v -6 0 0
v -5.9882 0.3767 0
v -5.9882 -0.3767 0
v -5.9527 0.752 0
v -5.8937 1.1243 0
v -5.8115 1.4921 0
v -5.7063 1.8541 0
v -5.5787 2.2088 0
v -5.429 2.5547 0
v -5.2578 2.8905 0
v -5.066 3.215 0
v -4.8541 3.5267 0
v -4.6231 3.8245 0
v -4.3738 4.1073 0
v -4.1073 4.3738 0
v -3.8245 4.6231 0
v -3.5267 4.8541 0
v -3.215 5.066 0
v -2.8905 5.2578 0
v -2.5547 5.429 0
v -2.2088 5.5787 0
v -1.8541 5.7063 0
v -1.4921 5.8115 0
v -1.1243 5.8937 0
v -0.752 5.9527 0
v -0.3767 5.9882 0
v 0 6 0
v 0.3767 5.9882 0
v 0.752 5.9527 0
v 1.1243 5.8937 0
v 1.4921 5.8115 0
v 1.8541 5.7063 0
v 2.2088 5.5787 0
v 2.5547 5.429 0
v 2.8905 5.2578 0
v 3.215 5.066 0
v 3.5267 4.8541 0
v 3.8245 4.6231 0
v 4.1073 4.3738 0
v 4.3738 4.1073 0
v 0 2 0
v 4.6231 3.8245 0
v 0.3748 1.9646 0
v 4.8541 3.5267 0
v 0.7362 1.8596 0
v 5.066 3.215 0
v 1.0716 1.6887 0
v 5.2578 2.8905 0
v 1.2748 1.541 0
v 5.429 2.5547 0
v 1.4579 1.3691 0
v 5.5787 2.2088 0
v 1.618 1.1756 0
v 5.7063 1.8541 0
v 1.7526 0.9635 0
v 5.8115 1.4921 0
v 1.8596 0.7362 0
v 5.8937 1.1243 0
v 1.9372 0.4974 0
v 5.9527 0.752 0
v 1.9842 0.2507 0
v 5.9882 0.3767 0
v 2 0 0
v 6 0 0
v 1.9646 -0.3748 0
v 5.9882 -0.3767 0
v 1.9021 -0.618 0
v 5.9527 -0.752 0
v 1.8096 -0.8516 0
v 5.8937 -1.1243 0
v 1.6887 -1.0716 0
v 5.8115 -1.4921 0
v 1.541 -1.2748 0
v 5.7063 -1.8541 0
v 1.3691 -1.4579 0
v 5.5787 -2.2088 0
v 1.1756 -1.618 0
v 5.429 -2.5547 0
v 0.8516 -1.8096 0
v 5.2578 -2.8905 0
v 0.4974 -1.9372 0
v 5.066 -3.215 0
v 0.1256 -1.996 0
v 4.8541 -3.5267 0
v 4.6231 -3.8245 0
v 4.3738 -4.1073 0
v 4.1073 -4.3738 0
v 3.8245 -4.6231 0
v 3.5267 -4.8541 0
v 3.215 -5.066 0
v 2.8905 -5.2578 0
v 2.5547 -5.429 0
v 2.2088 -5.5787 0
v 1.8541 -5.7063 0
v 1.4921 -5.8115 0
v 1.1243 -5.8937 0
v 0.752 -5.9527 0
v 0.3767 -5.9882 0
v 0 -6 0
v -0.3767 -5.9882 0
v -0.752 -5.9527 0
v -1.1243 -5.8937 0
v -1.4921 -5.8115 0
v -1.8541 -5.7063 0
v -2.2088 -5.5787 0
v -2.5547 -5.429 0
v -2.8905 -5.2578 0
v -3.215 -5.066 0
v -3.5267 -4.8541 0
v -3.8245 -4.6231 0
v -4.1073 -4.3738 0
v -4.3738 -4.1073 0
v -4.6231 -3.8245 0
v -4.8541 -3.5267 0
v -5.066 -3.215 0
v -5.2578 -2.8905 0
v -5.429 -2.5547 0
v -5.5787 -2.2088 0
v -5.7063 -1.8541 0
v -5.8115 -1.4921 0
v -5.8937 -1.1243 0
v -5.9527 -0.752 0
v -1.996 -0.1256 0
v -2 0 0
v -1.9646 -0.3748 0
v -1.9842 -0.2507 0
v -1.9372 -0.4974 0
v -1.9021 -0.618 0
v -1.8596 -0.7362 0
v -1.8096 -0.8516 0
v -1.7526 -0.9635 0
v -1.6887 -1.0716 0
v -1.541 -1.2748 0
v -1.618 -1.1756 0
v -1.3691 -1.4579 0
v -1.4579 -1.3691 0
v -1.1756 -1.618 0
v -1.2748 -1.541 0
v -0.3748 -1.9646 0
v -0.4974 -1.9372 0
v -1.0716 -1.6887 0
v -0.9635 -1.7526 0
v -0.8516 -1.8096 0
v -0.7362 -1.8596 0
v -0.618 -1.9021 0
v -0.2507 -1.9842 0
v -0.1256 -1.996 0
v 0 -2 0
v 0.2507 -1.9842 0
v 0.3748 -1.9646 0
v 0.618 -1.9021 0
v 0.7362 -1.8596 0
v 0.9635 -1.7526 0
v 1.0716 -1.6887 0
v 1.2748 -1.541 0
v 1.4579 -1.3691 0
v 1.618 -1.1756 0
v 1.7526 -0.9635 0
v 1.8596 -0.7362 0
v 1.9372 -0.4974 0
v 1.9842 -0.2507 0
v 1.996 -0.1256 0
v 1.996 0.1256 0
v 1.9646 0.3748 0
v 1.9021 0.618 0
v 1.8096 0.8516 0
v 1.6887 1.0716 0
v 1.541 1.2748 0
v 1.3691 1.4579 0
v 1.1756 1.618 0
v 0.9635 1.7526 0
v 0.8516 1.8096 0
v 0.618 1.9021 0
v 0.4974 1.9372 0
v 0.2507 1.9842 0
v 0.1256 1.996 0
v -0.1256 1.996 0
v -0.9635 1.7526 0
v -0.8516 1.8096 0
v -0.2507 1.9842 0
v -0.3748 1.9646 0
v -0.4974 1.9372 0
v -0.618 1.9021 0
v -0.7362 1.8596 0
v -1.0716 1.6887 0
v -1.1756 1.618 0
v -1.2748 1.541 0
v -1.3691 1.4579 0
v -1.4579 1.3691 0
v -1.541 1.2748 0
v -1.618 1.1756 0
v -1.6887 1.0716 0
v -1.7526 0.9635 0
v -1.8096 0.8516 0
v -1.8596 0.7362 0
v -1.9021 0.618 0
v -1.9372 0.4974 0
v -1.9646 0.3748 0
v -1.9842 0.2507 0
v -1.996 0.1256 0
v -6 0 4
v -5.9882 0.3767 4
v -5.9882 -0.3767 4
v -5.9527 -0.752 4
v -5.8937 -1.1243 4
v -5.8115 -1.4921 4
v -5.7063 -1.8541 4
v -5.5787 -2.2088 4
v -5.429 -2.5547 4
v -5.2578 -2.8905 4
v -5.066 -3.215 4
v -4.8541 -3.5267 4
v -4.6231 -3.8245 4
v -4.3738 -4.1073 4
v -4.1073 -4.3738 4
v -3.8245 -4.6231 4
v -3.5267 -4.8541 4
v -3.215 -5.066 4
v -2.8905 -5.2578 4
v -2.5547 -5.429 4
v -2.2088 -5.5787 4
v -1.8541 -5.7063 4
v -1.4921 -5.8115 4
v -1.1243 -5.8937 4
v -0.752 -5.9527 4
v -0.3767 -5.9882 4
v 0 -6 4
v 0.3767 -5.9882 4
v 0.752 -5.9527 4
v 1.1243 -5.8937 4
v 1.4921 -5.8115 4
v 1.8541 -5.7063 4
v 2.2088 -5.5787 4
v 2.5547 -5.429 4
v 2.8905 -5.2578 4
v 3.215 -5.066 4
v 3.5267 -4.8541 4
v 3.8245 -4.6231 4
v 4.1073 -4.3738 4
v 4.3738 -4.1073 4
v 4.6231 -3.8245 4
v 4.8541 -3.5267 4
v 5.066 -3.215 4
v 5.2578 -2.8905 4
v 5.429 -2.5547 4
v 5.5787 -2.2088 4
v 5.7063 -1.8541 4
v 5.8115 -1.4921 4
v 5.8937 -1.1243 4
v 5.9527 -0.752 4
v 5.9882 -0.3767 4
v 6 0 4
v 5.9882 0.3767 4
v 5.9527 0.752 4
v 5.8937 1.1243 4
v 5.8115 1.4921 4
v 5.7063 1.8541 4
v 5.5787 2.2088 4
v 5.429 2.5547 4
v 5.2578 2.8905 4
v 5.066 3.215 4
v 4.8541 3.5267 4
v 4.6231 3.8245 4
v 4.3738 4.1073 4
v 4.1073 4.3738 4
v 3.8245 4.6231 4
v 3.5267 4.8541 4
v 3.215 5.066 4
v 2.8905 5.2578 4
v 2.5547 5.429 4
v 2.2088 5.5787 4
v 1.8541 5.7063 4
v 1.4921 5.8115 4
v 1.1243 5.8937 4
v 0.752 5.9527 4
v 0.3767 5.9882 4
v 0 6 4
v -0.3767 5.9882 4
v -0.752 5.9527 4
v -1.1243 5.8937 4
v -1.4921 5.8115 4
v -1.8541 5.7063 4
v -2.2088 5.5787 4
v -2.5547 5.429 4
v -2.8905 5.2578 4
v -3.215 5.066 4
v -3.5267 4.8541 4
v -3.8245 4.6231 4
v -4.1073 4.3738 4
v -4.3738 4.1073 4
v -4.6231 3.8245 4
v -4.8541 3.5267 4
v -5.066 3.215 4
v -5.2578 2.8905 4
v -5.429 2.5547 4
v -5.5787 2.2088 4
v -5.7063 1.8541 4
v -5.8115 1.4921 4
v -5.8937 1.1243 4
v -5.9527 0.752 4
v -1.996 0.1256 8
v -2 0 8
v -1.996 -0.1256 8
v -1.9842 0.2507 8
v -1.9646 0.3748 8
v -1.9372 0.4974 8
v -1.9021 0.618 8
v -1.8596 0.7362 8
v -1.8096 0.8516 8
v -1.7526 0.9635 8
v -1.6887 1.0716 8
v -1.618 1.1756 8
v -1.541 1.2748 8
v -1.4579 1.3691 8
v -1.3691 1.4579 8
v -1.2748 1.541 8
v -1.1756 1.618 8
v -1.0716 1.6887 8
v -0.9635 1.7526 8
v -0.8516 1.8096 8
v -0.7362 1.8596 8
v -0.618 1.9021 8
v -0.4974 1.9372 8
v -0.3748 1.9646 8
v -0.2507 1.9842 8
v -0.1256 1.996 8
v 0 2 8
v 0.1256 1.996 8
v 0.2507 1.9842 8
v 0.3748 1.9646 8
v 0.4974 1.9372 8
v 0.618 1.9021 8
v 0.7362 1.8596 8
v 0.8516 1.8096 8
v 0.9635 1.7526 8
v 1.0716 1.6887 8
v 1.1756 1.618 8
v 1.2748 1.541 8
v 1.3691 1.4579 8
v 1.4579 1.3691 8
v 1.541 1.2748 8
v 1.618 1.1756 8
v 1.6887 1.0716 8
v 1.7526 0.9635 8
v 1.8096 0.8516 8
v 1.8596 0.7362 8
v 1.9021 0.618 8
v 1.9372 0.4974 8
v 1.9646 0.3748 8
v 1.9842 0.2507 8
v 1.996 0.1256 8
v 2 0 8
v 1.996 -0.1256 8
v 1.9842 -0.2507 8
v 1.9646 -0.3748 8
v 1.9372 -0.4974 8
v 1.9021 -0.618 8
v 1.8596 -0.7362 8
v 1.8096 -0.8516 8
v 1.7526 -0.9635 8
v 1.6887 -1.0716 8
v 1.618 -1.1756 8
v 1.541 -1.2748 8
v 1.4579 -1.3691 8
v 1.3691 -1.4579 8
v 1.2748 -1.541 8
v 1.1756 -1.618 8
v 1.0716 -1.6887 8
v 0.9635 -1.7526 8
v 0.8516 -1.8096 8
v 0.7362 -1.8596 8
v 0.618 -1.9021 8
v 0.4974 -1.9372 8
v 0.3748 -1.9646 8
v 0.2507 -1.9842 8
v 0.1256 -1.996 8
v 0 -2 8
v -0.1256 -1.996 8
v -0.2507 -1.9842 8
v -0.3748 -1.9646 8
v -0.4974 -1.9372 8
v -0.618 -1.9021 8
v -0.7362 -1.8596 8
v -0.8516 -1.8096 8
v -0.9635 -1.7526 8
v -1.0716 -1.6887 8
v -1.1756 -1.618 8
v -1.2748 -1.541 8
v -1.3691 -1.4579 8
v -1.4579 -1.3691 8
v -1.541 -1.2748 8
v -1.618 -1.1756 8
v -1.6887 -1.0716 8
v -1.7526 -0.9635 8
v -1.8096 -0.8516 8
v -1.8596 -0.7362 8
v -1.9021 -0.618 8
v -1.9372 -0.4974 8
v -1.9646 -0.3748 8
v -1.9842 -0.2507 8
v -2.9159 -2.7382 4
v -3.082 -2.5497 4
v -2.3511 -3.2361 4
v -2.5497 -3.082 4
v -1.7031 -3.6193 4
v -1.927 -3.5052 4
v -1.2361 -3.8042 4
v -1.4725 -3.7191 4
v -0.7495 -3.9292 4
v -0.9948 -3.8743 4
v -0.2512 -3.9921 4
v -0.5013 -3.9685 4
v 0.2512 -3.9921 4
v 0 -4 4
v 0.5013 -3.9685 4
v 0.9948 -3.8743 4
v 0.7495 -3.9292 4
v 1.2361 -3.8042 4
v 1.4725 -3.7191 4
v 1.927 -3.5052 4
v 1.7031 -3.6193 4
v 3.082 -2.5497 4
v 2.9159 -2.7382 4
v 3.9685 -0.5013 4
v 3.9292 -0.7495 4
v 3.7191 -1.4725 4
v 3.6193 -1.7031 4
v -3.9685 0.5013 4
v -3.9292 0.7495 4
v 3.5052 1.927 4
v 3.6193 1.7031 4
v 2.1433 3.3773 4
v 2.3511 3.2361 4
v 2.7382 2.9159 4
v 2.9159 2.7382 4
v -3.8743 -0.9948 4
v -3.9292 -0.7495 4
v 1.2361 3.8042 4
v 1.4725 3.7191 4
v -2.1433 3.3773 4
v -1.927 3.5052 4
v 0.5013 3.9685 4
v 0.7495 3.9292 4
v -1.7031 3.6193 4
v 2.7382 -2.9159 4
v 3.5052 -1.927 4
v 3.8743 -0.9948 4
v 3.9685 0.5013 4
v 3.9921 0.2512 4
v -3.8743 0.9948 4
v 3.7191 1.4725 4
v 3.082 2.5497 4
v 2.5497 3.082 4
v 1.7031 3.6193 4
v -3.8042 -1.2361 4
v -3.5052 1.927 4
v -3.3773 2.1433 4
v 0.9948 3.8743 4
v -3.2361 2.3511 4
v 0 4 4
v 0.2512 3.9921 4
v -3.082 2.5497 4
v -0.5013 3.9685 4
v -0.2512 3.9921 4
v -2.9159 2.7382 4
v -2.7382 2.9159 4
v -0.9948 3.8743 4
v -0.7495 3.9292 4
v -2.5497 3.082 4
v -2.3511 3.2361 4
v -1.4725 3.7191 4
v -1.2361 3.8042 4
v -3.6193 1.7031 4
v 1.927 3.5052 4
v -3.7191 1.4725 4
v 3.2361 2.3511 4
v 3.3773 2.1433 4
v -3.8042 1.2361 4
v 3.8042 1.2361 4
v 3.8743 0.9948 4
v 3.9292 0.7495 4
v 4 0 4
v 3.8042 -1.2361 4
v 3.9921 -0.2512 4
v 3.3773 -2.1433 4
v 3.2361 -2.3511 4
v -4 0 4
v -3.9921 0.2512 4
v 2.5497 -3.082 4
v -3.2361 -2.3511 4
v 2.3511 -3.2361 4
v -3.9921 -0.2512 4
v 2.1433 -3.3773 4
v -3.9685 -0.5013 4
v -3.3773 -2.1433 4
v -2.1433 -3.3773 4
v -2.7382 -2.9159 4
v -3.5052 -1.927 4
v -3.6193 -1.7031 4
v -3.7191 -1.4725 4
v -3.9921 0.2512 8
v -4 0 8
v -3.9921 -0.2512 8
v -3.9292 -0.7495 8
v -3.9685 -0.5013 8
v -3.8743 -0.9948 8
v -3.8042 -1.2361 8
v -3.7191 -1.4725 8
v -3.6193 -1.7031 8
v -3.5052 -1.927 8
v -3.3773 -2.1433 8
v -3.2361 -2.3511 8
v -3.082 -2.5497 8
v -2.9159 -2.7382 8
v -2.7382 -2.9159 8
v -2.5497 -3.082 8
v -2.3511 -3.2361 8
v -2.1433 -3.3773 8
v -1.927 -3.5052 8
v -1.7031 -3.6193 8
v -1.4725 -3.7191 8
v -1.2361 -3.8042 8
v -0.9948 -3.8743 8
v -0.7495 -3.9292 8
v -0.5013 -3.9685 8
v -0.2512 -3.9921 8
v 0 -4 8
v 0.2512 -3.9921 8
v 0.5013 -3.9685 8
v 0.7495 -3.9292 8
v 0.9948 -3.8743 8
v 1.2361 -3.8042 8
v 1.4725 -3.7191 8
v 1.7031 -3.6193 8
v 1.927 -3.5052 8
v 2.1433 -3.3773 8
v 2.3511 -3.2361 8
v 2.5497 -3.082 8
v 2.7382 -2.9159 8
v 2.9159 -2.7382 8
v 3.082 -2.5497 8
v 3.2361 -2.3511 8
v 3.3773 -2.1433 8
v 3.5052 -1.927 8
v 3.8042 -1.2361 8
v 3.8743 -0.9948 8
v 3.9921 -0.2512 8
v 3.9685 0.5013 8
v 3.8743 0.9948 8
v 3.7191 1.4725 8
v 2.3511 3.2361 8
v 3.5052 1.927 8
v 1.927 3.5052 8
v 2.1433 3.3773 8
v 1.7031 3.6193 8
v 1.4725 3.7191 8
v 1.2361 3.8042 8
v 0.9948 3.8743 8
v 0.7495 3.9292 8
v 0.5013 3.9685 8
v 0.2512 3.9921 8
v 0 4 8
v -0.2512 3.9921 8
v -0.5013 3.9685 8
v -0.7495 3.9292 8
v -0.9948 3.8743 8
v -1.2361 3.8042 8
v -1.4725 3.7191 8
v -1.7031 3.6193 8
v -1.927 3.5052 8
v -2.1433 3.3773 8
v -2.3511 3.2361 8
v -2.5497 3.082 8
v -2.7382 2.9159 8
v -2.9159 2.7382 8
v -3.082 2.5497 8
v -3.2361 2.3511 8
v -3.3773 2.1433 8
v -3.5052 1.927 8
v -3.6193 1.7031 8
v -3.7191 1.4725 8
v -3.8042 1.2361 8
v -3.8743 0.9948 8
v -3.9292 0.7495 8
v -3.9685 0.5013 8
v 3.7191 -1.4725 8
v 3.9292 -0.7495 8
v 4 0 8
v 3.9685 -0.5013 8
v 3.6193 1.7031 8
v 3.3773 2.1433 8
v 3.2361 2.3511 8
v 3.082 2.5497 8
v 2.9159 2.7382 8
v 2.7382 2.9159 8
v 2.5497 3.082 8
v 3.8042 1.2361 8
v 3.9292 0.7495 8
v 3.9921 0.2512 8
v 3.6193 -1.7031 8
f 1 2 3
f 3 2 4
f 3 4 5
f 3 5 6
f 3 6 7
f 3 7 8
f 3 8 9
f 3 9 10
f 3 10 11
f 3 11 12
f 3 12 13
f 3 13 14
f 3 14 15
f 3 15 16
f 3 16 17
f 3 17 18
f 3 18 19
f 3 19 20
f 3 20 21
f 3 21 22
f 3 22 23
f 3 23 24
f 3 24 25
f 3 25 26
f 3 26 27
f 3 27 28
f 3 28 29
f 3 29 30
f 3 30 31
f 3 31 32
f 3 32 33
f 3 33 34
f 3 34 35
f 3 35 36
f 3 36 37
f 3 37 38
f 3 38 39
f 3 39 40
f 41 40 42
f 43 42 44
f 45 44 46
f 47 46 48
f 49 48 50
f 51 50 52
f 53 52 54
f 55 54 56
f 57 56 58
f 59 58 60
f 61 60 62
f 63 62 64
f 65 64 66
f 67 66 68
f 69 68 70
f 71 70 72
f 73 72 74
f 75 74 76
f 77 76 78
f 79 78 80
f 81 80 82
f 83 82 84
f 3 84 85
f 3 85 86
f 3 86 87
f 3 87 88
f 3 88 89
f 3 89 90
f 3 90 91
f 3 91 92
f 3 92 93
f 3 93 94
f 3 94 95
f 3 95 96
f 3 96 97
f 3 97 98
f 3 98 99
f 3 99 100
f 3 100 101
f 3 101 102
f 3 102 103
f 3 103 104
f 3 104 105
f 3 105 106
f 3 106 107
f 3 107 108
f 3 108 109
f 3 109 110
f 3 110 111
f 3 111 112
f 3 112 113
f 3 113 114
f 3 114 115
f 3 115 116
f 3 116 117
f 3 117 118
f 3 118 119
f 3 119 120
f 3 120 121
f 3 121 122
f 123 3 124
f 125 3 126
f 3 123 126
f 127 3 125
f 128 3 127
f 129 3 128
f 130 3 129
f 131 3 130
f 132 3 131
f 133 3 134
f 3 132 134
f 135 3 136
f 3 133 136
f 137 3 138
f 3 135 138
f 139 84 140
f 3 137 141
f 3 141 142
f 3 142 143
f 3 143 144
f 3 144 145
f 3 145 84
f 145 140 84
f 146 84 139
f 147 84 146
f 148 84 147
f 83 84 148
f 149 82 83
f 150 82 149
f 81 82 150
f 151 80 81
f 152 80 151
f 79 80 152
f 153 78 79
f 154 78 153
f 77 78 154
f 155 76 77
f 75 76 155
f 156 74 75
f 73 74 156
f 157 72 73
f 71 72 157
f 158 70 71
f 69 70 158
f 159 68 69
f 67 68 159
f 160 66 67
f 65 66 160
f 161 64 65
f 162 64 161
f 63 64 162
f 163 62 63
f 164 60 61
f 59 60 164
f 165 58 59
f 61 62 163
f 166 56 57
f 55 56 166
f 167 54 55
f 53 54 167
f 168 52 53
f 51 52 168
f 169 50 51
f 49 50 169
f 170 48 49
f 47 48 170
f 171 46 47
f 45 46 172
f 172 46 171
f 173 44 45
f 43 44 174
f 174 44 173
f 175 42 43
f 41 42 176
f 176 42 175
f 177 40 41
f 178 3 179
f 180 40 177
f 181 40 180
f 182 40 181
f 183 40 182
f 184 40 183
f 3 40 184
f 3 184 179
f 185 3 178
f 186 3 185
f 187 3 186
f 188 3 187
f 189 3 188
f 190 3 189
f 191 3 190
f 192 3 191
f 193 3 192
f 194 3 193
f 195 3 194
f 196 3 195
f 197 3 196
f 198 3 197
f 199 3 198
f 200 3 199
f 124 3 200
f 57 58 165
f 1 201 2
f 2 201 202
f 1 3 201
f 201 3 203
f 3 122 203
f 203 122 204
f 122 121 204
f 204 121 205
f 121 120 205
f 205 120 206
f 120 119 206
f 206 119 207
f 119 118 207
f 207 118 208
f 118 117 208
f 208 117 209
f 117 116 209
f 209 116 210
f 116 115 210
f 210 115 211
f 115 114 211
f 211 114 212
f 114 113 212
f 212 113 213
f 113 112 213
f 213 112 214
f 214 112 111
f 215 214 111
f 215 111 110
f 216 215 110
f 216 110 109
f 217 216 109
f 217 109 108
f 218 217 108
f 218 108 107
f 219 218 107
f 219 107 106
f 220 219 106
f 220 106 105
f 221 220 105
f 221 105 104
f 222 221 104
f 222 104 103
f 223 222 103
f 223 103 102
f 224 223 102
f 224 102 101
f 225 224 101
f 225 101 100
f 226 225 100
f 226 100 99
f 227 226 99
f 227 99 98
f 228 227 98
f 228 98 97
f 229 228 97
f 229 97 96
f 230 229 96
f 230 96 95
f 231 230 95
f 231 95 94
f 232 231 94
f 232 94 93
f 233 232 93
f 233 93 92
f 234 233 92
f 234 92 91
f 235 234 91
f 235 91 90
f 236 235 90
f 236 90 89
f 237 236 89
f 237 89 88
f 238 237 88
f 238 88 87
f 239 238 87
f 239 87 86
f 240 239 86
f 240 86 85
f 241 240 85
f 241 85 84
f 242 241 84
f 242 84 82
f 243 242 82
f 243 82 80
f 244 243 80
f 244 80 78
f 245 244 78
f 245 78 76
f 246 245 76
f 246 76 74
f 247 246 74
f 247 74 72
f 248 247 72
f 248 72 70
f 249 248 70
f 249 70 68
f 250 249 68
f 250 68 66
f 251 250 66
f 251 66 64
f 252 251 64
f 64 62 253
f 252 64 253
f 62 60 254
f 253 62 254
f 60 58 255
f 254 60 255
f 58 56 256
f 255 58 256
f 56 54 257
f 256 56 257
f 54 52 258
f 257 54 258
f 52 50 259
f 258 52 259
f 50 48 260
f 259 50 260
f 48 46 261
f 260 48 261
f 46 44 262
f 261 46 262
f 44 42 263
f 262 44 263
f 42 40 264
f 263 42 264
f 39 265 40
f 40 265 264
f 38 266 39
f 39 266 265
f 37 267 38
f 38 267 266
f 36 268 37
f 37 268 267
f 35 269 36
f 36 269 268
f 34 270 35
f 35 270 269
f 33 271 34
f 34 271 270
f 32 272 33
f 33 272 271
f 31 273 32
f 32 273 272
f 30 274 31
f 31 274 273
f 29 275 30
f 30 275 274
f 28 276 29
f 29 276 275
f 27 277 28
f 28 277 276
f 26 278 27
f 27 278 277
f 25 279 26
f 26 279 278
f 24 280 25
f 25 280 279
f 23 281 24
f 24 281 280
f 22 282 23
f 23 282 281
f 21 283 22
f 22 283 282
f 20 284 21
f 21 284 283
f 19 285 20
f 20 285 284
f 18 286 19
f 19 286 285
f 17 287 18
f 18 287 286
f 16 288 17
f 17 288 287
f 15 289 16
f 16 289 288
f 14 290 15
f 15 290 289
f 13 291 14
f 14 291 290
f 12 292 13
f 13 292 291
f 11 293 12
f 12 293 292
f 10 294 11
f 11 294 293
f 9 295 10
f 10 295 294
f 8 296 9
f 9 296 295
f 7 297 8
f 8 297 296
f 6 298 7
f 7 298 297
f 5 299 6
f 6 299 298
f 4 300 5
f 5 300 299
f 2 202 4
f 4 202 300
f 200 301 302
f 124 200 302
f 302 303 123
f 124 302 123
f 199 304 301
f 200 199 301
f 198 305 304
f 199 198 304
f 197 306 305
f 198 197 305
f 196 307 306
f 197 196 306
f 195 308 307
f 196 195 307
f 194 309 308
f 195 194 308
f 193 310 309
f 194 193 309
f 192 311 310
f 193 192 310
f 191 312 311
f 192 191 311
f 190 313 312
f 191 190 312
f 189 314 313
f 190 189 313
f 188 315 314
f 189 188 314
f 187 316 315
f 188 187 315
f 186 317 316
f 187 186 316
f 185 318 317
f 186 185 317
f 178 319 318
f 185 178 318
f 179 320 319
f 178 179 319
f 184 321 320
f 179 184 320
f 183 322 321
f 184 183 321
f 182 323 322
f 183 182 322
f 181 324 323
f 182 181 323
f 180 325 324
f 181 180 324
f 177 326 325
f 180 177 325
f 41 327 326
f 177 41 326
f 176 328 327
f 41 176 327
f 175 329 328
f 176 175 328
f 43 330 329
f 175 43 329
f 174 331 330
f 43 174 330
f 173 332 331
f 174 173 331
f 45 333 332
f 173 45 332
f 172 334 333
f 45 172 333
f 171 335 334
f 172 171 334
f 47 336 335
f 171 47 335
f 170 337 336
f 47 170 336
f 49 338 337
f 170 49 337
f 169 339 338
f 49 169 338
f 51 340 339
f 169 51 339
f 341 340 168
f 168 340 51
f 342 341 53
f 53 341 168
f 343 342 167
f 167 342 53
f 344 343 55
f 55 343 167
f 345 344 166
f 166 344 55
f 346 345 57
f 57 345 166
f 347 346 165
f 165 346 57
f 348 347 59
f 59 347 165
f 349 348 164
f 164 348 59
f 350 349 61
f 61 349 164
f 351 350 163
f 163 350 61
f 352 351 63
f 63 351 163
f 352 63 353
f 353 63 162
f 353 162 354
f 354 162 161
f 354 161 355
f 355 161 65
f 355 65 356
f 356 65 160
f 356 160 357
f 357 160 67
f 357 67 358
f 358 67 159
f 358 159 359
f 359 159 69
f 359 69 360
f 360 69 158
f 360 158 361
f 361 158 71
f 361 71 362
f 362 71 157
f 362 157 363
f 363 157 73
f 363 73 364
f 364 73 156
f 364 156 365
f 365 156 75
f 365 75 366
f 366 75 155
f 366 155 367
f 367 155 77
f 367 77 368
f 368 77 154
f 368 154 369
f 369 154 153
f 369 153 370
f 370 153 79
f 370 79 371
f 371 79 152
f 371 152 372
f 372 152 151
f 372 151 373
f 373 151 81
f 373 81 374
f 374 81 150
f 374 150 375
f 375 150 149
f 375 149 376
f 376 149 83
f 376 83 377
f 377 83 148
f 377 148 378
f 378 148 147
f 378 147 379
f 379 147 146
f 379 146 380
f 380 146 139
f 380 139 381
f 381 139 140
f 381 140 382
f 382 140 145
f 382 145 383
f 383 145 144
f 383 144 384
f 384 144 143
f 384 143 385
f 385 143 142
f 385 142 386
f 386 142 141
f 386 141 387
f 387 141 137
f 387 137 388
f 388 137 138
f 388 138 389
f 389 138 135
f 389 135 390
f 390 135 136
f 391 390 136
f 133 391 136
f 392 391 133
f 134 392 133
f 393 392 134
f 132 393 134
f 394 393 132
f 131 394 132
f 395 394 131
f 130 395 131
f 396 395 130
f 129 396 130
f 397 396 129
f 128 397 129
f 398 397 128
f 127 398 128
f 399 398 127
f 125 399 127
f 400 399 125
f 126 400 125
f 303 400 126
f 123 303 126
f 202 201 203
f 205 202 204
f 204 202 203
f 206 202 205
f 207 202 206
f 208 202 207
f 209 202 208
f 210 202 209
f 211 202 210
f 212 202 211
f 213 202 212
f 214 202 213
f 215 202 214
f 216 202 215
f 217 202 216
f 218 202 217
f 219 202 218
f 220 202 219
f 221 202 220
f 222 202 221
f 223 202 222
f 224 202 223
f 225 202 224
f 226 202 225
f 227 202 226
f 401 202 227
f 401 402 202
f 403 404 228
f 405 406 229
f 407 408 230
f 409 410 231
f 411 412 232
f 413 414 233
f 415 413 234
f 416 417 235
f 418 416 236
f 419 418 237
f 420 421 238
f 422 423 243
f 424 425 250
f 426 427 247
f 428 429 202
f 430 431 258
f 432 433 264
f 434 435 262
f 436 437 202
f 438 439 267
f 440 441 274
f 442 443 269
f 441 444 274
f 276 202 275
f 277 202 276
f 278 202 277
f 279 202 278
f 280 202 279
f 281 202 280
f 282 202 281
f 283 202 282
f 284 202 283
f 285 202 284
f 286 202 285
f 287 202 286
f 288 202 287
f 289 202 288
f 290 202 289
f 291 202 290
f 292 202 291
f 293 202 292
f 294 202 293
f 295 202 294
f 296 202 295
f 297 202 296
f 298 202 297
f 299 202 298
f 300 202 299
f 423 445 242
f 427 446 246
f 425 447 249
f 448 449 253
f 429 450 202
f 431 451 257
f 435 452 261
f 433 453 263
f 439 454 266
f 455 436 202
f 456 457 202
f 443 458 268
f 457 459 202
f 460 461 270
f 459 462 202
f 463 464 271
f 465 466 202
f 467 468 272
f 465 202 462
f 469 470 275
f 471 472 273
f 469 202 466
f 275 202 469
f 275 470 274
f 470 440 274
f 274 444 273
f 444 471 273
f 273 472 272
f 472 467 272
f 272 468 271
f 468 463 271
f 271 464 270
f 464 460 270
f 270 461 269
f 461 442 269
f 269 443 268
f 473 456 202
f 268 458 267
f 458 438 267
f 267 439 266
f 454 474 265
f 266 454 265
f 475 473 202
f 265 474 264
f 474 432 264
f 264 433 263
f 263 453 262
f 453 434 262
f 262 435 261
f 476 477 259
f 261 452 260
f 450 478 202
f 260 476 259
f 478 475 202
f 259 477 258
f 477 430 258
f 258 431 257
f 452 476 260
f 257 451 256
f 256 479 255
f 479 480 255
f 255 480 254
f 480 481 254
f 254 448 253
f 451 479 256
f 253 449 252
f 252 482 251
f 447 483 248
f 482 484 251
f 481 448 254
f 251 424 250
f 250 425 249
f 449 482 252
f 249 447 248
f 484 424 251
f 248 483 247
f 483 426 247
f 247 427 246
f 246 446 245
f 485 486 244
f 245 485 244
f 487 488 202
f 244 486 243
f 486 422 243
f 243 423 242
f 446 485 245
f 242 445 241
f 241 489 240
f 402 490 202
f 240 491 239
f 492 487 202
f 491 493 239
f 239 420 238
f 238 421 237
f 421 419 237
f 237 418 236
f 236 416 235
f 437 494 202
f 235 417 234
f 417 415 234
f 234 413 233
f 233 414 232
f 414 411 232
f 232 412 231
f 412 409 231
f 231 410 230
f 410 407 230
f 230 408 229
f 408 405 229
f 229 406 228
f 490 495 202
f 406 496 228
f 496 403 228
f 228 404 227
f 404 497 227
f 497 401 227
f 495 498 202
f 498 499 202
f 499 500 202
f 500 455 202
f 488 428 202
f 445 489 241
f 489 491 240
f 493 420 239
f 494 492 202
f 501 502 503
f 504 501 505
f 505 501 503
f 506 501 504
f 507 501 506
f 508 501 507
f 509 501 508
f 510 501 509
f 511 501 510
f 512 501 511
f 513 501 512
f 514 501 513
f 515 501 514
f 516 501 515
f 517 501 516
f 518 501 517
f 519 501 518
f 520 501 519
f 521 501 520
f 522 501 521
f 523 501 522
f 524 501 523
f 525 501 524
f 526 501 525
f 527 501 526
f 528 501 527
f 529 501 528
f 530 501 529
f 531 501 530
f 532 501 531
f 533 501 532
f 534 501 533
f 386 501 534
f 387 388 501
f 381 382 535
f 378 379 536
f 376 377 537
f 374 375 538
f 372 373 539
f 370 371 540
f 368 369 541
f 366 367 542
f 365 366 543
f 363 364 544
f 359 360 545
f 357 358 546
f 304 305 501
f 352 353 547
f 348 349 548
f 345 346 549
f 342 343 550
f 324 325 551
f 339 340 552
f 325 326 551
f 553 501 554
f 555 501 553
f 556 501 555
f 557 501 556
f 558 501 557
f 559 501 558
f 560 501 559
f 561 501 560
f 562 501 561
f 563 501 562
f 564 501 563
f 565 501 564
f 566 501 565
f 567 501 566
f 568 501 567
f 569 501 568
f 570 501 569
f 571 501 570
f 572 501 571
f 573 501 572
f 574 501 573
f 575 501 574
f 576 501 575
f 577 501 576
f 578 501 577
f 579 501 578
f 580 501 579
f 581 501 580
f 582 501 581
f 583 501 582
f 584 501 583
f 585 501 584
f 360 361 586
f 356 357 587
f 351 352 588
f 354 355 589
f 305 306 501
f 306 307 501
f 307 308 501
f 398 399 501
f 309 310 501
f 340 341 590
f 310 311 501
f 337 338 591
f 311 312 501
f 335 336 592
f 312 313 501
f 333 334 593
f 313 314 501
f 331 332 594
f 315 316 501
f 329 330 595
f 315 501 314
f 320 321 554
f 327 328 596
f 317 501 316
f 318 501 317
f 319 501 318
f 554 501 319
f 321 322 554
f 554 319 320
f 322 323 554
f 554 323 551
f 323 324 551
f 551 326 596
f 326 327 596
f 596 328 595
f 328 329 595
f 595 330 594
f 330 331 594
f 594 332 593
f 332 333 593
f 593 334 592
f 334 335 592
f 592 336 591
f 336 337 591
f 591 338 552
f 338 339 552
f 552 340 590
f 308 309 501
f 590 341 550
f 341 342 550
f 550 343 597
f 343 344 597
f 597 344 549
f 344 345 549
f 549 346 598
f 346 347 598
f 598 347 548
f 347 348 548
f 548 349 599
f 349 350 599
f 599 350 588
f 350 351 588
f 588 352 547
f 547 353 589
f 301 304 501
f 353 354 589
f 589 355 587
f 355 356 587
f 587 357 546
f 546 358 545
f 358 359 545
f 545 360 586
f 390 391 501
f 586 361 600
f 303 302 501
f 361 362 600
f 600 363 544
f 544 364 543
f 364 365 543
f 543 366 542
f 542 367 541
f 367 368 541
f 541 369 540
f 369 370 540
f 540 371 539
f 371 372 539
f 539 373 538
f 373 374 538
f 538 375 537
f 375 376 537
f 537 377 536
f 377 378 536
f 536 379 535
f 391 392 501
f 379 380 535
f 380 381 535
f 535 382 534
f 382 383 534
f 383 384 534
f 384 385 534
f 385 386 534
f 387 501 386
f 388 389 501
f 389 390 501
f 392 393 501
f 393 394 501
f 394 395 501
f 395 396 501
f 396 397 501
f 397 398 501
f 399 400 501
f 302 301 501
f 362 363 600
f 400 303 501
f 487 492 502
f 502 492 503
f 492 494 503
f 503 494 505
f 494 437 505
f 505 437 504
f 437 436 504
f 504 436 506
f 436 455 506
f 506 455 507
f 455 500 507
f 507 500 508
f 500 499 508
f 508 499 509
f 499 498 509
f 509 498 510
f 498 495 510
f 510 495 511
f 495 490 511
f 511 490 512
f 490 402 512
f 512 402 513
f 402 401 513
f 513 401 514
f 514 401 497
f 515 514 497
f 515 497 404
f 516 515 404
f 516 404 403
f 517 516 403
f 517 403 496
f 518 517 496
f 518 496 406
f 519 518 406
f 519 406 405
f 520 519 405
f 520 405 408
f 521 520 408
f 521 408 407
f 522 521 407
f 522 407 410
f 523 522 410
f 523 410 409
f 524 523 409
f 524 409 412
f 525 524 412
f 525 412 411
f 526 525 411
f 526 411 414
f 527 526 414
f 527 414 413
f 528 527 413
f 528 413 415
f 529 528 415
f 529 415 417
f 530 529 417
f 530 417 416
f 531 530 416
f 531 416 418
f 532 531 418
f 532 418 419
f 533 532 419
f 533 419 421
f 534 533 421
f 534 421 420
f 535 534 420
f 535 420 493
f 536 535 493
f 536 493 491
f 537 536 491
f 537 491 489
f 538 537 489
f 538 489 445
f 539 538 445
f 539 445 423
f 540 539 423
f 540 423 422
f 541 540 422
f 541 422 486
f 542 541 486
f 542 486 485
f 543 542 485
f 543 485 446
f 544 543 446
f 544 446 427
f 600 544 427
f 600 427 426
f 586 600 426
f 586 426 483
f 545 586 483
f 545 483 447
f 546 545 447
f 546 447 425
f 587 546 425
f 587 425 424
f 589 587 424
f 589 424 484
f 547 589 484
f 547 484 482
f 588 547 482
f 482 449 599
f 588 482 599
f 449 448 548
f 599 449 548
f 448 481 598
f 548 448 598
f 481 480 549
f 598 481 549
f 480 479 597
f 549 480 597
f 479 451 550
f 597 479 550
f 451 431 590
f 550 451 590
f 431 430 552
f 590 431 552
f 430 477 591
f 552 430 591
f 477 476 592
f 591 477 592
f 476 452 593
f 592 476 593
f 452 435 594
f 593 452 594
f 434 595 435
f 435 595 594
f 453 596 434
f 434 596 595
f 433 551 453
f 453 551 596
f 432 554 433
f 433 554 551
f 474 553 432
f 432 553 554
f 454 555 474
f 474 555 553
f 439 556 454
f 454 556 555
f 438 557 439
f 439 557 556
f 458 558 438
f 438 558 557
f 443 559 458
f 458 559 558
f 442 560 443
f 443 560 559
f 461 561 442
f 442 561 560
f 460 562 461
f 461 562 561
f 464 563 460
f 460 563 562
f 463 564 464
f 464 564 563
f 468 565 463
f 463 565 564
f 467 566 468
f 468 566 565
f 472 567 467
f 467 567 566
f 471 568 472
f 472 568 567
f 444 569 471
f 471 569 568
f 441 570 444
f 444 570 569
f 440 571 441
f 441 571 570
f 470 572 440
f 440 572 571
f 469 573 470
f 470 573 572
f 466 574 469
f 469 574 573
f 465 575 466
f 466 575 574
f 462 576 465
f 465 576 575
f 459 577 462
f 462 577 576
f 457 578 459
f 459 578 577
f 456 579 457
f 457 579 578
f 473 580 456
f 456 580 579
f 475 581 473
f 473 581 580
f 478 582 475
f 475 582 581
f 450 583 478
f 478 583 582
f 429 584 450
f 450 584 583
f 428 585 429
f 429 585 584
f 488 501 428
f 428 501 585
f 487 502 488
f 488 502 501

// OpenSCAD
r_int=4;
r_ext=6;
r_m3=2;
hauteur=4; 

module rondelle_plateau(){
	difference(){
		union(){
			cylinder(h=hauteur, r=r_ext, $fn=100);
			translate([0,0,hauteur]){cylinder(h=hauteur, r=r_int, $fn=100);}
		}
		translate([0,0,-5]){cylinder(h=hauteur*2+10, r=r_m3, $fn=100);}
	}

}
rondelle_plateau();
